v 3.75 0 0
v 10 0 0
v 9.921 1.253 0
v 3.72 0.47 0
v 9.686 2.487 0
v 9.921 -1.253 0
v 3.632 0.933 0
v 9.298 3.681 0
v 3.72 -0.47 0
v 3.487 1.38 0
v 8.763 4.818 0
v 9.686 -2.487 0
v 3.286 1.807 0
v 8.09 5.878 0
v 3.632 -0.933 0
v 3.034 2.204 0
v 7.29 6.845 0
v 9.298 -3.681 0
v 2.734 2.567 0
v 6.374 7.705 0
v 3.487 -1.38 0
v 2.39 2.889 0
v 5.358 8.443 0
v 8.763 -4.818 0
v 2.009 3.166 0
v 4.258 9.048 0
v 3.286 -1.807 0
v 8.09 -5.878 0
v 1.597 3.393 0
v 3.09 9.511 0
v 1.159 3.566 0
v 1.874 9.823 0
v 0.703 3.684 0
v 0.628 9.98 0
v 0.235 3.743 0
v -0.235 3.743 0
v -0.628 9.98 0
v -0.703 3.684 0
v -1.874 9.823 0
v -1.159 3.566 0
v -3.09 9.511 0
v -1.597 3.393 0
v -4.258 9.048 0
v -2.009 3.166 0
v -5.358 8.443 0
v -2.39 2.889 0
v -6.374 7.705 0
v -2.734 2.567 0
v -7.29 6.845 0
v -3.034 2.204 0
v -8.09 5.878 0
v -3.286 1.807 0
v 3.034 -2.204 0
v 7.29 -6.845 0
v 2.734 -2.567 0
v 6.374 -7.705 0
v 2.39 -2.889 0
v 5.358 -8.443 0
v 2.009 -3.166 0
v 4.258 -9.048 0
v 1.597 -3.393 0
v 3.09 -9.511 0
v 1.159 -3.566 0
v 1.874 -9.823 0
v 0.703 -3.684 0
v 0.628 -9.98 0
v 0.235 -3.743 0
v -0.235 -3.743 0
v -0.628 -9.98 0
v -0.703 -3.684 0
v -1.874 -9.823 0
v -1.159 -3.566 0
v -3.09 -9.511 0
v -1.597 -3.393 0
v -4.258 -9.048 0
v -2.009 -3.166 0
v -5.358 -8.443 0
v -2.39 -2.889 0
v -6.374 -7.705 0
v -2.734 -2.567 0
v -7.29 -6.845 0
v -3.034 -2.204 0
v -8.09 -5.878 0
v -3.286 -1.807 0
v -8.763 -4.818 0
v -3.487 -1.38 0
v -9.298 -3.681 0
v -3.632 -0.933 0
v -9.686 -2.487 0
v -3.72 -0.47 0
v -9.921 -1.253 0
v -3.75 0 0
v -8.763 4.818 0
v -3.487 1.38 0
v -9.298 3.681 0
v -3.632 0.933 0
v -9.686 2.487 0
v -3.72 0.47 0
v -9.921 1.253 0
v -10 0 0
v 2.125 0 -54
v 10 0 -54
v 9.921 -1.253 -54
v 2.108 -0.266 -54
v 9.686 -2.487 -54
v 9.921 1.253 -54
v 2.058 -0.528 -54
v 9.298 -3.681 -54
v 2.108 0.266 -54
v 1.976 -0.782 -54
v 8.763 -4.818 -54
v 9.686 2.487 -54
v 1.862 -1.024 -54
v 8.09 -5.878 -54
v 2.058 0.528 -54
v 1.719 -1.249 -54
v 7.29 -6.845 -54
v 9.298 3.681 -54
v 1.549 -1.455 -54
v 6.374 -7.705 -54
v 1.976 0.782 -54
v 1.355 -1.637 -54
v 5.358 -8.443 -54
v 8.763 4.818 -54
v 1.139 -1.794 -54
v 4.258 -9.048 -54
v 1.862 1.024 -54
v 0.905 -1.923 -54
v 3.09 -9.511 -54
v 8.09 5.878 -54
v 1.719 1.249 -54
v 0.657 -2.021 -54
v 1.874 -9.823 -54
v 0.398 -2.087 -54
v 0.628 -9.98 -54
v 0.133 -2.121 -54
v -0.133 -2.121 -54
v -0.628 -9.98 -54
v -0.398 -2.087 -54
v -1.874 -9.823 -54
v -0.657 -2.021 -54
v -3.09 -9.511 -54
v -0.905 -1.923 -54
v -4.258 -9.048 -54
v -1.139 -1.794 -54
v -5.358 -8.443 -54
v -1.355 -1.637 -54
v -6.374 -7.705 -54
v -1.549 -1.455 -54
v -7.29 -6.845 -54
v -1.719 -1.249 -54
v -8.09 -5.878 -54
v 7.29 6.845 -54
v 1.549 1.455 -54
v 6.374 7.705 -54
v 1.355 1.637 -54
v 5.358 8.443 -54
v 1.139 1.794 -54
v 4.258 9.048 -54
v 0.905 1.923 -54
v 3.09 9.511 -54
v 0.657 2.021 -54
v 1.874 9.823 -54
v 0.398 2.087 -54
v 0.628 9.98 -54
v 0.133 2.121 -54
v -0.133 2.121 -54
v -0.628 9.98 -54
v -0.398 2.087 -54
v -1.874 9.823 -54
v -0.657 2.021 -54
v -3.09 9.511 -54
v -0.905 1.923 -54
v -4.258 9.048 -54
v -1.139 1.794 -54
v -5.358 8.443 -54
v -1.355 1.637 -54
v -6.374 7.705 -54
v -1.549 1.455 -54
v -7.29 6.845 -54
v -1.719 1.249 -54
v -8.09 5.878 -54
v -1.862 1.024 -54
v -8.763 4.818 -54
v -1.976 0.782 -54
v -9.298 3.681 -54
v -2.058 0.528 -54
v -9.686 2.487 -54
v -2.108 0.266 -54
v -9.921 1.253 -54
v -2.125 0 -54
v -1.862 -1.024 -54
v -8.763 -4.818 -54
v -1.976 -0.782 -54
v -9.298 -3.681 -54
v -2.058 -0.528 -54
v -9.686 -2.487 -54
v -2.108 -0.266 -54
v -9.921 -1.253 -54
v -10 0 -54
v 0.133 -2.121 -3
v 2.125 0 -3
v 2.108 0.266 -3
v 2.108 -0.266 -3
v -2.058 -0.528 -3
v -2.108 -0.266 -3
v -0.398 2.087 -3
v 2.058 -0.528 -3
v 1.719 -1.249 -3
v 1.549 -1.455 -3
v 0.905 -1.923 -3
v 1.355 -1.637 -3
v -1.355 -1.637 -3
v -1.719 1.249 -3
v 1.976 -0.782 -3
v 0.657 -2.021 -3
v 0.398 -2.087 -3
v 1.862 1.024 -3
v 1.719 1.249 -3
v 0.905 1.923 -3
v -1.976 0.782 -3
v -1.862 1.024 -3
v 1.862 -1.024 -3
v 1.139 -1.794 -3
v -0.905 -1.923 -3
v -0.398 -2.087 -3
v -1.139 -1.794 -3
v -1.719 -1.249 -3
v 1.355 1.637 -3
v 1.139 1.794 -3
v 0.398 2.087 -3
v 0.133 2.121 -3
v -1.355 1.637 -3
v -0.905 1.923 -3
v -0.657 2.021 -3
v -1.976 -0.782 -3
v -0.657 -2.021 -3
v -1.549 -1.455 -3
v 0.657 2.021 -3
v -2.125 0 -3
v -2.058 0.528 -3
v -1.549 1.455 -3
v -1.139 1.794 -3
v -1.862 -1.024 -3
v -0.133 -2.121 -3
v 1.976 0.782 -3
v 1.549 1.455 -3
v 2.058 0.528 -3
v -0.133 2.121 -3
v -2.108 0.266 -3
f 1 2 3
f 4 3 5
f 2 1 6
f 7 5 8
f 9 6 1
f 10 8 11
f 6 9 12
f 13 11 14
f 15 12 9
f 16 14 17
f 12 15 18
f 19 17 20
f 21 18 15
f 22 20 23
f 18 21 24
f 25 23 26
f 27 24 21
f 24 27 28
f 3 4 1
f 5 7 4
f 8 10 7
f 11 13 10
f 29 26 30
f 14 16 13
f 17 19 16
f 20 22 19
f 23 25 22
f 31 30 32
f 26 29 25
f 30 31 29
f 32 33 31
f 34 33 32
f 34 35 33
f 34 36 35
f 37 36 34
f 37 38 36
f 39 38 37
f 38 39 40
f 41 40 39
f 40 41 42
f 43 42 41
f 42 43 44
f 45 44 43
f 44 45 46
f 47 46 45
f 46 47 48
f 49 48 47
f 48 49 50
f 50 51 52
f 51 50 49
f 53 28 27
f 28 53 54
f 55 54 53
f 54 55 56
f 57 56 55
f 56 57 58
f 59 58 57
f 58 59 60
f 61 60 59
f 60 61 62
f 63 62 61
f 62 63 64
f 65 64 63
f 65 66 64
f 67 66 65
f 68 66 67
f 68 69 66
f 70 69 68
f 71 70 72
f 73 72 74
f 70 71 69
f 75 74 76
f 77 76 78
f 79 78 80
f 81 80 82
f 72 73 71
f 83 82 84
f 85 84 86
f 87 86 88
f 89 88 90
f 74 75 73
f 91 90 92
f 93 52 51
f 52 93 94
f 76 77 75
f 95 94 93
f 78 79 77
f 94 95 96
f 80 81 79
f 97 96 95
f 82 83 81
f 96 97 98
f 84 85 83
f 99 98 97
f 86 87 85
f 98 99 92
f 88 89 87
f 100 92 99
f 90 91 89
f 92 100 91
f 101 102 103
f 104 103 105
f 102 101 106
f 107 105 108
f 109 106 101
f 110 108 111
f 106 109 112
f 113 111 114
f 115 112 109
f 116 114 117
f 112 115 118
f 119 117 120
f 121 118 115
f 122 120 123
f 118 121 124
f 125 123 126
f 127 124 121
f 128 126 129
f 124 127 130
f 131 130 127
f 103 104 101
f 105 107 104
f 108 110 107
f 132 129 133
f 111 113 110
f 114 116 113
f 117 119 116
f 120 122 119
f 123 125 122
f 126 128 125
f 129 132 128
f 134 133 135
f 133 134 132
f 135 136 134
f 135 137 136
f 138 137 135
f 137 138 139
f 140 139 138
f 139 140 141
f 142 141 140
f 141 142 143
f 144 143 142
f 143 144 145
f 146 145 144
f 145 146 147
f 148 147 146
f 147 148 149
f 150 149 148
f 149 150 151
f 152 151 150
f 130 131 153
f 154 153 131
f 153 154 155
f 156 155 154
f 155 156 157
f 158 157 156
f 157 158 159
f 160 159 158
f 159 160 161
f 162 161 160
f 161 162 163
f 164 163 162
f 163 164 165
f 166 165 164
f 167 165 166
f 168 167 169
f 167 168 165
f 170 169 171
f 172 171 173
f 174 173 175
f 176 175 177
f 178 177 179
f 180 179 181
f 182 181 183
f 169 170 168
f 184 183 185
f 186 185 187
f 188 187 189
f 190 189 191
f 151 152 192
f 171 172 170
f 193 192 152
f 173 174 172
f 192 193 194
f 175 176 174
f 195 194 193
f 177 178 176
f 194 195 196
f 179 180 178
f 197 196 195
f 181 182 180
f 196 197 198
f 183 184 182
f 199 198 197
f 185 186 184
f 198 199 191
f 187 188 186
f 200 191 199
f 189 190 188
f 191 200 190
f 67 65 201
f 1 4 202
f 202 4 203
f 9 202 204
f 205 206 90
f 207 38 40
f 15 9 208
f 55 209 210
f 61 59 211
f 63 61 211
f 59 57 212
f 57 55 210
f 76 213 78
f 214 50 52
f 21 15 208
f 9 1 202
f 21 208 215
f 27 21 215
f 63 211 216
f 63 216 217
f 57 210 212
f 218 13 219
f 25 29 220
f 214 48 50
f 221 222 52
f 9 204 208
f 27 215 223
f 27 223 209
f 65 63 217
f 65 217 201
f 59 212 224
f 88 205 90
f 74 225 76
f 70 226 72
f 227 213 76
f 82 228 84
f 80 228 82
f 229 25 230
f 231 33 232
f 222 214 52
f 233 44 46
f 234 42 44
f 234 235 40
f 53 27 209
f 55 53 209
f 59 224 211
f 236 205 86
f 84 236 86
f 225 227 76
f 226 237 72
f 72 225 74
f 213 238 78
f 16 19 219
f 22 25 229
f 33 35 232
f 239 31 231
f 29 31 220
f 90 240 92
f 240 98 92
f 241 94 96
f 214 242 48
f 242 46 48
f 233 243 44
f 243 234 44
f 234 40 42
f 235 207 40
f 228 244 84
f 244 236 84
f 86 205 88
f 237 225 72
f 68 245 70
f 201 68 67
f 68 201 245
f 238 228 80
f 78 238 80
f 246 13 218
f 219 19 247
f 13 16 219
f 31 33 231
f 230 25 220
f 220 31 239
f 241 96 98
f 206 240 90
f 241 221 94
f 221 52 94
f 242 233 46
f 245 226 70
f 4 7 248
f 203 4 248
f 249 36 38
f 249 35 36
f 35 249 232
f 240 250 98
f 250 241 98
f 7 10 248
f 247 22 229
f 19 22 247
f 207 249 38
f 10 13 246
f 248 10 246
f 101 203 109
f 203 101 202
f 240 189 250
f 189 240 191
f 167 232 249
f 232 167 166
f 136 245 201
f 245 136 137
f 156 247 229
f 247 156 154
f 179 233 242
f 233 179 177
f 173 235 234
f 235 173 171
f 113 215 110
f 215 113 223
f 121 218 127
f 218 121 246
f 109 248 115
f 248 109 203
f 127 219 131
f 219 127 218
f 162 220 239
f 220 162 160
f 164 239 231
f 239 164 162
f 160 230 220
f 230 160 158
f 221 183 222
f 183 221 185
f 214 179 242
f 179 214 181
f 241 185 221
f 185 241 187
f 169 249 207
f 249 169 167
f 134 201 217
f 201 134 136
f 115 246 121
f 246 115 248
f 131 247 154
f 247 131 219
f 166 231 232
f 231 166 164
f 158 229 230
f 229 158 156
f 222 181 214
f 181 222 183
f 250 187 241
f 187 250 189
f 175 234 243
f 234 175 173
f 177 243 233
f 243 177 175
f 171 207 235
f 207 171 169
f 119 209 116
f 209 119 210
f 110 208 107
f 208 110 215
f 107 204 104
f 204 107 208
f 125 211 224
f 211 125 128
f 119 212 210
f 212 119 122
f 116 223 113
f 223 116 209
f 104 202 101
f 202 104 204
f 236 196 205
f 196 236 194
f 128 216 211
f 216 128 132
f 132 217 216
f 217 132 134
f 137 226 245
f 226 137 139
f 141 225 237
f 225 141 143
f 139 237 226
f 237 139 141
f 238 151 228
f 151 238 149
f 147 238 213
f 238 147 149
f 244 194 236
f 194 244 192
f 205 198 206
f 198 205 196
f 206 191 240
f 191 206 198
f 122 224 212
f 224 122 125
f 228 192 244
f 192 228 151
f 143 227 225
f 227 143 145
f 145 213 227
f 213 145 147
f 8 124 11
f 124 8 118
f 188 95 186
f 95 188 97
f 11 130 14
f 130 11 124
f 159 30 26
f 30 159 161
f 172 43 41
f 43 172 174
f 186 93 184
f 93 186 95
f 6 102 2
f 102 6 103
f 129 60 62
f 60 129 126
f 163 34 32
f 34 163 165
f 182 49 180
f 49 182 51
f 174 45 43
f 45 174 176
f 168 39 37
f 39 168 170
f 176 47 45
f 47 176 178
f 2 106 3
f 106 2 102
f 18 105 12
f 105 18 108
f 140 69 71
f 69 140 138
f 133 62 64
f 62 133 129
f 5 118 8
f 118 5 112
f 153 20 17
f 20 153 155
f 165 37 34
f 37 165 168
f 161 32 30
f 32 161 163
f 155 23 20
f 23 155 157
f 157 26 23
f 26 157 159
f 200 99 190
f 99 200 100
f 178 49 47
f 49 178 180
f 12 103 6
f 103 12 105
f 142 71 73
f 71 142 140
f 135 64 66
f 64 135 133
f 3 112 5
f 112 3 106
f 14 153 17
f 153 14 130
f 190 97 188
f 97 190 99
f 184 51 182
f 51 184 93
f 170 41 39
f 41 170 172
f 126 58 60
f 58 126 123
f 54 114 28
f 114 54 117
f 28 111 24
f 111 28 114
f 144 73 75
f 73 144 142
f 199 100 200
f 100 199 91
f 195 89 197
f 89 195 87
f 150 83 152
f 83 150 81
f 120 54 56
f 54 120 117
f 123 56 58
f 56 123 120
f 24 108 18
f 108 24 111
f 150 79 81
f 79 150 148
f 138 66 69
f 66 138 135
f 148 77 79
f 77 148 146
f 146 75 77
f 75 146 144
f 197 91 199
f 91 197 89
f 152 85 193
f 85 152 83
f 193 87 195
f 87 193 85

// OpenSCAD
$fn = 50;


difference() {
	union() {
		translate(v = [0, 0, -54.0000000000]) {
			cylinder(h = 54, r = 10.0000000000);
		}
	}
	union() {
		translate(v = [0, 0, 0]) {
			rotate(a = [0, 0, 0]) {
				difference() {
					union() {
						#translate(v = [0, 0, -54.0000000000]) {
							cylinder(h = 54, r = 2.0000000000);
						}
						#translate(v = [0, 0, -3]) {
							cylinder(h = 3, r = 10.0000000000, r1 = 2.1250000000, r2 = 3.7500000000);
						}
						#translate(v = [0, 0, -54.0000000000]) {
							cylinder(h = 54, r = 2.1250000000);
						}
						#translate(v = [0, 0, -54.0000000000]) {
							cylinder(h = 54, r = 2.0000000000);
						}
					}
					union();
				}
			}
		}
	}
}
